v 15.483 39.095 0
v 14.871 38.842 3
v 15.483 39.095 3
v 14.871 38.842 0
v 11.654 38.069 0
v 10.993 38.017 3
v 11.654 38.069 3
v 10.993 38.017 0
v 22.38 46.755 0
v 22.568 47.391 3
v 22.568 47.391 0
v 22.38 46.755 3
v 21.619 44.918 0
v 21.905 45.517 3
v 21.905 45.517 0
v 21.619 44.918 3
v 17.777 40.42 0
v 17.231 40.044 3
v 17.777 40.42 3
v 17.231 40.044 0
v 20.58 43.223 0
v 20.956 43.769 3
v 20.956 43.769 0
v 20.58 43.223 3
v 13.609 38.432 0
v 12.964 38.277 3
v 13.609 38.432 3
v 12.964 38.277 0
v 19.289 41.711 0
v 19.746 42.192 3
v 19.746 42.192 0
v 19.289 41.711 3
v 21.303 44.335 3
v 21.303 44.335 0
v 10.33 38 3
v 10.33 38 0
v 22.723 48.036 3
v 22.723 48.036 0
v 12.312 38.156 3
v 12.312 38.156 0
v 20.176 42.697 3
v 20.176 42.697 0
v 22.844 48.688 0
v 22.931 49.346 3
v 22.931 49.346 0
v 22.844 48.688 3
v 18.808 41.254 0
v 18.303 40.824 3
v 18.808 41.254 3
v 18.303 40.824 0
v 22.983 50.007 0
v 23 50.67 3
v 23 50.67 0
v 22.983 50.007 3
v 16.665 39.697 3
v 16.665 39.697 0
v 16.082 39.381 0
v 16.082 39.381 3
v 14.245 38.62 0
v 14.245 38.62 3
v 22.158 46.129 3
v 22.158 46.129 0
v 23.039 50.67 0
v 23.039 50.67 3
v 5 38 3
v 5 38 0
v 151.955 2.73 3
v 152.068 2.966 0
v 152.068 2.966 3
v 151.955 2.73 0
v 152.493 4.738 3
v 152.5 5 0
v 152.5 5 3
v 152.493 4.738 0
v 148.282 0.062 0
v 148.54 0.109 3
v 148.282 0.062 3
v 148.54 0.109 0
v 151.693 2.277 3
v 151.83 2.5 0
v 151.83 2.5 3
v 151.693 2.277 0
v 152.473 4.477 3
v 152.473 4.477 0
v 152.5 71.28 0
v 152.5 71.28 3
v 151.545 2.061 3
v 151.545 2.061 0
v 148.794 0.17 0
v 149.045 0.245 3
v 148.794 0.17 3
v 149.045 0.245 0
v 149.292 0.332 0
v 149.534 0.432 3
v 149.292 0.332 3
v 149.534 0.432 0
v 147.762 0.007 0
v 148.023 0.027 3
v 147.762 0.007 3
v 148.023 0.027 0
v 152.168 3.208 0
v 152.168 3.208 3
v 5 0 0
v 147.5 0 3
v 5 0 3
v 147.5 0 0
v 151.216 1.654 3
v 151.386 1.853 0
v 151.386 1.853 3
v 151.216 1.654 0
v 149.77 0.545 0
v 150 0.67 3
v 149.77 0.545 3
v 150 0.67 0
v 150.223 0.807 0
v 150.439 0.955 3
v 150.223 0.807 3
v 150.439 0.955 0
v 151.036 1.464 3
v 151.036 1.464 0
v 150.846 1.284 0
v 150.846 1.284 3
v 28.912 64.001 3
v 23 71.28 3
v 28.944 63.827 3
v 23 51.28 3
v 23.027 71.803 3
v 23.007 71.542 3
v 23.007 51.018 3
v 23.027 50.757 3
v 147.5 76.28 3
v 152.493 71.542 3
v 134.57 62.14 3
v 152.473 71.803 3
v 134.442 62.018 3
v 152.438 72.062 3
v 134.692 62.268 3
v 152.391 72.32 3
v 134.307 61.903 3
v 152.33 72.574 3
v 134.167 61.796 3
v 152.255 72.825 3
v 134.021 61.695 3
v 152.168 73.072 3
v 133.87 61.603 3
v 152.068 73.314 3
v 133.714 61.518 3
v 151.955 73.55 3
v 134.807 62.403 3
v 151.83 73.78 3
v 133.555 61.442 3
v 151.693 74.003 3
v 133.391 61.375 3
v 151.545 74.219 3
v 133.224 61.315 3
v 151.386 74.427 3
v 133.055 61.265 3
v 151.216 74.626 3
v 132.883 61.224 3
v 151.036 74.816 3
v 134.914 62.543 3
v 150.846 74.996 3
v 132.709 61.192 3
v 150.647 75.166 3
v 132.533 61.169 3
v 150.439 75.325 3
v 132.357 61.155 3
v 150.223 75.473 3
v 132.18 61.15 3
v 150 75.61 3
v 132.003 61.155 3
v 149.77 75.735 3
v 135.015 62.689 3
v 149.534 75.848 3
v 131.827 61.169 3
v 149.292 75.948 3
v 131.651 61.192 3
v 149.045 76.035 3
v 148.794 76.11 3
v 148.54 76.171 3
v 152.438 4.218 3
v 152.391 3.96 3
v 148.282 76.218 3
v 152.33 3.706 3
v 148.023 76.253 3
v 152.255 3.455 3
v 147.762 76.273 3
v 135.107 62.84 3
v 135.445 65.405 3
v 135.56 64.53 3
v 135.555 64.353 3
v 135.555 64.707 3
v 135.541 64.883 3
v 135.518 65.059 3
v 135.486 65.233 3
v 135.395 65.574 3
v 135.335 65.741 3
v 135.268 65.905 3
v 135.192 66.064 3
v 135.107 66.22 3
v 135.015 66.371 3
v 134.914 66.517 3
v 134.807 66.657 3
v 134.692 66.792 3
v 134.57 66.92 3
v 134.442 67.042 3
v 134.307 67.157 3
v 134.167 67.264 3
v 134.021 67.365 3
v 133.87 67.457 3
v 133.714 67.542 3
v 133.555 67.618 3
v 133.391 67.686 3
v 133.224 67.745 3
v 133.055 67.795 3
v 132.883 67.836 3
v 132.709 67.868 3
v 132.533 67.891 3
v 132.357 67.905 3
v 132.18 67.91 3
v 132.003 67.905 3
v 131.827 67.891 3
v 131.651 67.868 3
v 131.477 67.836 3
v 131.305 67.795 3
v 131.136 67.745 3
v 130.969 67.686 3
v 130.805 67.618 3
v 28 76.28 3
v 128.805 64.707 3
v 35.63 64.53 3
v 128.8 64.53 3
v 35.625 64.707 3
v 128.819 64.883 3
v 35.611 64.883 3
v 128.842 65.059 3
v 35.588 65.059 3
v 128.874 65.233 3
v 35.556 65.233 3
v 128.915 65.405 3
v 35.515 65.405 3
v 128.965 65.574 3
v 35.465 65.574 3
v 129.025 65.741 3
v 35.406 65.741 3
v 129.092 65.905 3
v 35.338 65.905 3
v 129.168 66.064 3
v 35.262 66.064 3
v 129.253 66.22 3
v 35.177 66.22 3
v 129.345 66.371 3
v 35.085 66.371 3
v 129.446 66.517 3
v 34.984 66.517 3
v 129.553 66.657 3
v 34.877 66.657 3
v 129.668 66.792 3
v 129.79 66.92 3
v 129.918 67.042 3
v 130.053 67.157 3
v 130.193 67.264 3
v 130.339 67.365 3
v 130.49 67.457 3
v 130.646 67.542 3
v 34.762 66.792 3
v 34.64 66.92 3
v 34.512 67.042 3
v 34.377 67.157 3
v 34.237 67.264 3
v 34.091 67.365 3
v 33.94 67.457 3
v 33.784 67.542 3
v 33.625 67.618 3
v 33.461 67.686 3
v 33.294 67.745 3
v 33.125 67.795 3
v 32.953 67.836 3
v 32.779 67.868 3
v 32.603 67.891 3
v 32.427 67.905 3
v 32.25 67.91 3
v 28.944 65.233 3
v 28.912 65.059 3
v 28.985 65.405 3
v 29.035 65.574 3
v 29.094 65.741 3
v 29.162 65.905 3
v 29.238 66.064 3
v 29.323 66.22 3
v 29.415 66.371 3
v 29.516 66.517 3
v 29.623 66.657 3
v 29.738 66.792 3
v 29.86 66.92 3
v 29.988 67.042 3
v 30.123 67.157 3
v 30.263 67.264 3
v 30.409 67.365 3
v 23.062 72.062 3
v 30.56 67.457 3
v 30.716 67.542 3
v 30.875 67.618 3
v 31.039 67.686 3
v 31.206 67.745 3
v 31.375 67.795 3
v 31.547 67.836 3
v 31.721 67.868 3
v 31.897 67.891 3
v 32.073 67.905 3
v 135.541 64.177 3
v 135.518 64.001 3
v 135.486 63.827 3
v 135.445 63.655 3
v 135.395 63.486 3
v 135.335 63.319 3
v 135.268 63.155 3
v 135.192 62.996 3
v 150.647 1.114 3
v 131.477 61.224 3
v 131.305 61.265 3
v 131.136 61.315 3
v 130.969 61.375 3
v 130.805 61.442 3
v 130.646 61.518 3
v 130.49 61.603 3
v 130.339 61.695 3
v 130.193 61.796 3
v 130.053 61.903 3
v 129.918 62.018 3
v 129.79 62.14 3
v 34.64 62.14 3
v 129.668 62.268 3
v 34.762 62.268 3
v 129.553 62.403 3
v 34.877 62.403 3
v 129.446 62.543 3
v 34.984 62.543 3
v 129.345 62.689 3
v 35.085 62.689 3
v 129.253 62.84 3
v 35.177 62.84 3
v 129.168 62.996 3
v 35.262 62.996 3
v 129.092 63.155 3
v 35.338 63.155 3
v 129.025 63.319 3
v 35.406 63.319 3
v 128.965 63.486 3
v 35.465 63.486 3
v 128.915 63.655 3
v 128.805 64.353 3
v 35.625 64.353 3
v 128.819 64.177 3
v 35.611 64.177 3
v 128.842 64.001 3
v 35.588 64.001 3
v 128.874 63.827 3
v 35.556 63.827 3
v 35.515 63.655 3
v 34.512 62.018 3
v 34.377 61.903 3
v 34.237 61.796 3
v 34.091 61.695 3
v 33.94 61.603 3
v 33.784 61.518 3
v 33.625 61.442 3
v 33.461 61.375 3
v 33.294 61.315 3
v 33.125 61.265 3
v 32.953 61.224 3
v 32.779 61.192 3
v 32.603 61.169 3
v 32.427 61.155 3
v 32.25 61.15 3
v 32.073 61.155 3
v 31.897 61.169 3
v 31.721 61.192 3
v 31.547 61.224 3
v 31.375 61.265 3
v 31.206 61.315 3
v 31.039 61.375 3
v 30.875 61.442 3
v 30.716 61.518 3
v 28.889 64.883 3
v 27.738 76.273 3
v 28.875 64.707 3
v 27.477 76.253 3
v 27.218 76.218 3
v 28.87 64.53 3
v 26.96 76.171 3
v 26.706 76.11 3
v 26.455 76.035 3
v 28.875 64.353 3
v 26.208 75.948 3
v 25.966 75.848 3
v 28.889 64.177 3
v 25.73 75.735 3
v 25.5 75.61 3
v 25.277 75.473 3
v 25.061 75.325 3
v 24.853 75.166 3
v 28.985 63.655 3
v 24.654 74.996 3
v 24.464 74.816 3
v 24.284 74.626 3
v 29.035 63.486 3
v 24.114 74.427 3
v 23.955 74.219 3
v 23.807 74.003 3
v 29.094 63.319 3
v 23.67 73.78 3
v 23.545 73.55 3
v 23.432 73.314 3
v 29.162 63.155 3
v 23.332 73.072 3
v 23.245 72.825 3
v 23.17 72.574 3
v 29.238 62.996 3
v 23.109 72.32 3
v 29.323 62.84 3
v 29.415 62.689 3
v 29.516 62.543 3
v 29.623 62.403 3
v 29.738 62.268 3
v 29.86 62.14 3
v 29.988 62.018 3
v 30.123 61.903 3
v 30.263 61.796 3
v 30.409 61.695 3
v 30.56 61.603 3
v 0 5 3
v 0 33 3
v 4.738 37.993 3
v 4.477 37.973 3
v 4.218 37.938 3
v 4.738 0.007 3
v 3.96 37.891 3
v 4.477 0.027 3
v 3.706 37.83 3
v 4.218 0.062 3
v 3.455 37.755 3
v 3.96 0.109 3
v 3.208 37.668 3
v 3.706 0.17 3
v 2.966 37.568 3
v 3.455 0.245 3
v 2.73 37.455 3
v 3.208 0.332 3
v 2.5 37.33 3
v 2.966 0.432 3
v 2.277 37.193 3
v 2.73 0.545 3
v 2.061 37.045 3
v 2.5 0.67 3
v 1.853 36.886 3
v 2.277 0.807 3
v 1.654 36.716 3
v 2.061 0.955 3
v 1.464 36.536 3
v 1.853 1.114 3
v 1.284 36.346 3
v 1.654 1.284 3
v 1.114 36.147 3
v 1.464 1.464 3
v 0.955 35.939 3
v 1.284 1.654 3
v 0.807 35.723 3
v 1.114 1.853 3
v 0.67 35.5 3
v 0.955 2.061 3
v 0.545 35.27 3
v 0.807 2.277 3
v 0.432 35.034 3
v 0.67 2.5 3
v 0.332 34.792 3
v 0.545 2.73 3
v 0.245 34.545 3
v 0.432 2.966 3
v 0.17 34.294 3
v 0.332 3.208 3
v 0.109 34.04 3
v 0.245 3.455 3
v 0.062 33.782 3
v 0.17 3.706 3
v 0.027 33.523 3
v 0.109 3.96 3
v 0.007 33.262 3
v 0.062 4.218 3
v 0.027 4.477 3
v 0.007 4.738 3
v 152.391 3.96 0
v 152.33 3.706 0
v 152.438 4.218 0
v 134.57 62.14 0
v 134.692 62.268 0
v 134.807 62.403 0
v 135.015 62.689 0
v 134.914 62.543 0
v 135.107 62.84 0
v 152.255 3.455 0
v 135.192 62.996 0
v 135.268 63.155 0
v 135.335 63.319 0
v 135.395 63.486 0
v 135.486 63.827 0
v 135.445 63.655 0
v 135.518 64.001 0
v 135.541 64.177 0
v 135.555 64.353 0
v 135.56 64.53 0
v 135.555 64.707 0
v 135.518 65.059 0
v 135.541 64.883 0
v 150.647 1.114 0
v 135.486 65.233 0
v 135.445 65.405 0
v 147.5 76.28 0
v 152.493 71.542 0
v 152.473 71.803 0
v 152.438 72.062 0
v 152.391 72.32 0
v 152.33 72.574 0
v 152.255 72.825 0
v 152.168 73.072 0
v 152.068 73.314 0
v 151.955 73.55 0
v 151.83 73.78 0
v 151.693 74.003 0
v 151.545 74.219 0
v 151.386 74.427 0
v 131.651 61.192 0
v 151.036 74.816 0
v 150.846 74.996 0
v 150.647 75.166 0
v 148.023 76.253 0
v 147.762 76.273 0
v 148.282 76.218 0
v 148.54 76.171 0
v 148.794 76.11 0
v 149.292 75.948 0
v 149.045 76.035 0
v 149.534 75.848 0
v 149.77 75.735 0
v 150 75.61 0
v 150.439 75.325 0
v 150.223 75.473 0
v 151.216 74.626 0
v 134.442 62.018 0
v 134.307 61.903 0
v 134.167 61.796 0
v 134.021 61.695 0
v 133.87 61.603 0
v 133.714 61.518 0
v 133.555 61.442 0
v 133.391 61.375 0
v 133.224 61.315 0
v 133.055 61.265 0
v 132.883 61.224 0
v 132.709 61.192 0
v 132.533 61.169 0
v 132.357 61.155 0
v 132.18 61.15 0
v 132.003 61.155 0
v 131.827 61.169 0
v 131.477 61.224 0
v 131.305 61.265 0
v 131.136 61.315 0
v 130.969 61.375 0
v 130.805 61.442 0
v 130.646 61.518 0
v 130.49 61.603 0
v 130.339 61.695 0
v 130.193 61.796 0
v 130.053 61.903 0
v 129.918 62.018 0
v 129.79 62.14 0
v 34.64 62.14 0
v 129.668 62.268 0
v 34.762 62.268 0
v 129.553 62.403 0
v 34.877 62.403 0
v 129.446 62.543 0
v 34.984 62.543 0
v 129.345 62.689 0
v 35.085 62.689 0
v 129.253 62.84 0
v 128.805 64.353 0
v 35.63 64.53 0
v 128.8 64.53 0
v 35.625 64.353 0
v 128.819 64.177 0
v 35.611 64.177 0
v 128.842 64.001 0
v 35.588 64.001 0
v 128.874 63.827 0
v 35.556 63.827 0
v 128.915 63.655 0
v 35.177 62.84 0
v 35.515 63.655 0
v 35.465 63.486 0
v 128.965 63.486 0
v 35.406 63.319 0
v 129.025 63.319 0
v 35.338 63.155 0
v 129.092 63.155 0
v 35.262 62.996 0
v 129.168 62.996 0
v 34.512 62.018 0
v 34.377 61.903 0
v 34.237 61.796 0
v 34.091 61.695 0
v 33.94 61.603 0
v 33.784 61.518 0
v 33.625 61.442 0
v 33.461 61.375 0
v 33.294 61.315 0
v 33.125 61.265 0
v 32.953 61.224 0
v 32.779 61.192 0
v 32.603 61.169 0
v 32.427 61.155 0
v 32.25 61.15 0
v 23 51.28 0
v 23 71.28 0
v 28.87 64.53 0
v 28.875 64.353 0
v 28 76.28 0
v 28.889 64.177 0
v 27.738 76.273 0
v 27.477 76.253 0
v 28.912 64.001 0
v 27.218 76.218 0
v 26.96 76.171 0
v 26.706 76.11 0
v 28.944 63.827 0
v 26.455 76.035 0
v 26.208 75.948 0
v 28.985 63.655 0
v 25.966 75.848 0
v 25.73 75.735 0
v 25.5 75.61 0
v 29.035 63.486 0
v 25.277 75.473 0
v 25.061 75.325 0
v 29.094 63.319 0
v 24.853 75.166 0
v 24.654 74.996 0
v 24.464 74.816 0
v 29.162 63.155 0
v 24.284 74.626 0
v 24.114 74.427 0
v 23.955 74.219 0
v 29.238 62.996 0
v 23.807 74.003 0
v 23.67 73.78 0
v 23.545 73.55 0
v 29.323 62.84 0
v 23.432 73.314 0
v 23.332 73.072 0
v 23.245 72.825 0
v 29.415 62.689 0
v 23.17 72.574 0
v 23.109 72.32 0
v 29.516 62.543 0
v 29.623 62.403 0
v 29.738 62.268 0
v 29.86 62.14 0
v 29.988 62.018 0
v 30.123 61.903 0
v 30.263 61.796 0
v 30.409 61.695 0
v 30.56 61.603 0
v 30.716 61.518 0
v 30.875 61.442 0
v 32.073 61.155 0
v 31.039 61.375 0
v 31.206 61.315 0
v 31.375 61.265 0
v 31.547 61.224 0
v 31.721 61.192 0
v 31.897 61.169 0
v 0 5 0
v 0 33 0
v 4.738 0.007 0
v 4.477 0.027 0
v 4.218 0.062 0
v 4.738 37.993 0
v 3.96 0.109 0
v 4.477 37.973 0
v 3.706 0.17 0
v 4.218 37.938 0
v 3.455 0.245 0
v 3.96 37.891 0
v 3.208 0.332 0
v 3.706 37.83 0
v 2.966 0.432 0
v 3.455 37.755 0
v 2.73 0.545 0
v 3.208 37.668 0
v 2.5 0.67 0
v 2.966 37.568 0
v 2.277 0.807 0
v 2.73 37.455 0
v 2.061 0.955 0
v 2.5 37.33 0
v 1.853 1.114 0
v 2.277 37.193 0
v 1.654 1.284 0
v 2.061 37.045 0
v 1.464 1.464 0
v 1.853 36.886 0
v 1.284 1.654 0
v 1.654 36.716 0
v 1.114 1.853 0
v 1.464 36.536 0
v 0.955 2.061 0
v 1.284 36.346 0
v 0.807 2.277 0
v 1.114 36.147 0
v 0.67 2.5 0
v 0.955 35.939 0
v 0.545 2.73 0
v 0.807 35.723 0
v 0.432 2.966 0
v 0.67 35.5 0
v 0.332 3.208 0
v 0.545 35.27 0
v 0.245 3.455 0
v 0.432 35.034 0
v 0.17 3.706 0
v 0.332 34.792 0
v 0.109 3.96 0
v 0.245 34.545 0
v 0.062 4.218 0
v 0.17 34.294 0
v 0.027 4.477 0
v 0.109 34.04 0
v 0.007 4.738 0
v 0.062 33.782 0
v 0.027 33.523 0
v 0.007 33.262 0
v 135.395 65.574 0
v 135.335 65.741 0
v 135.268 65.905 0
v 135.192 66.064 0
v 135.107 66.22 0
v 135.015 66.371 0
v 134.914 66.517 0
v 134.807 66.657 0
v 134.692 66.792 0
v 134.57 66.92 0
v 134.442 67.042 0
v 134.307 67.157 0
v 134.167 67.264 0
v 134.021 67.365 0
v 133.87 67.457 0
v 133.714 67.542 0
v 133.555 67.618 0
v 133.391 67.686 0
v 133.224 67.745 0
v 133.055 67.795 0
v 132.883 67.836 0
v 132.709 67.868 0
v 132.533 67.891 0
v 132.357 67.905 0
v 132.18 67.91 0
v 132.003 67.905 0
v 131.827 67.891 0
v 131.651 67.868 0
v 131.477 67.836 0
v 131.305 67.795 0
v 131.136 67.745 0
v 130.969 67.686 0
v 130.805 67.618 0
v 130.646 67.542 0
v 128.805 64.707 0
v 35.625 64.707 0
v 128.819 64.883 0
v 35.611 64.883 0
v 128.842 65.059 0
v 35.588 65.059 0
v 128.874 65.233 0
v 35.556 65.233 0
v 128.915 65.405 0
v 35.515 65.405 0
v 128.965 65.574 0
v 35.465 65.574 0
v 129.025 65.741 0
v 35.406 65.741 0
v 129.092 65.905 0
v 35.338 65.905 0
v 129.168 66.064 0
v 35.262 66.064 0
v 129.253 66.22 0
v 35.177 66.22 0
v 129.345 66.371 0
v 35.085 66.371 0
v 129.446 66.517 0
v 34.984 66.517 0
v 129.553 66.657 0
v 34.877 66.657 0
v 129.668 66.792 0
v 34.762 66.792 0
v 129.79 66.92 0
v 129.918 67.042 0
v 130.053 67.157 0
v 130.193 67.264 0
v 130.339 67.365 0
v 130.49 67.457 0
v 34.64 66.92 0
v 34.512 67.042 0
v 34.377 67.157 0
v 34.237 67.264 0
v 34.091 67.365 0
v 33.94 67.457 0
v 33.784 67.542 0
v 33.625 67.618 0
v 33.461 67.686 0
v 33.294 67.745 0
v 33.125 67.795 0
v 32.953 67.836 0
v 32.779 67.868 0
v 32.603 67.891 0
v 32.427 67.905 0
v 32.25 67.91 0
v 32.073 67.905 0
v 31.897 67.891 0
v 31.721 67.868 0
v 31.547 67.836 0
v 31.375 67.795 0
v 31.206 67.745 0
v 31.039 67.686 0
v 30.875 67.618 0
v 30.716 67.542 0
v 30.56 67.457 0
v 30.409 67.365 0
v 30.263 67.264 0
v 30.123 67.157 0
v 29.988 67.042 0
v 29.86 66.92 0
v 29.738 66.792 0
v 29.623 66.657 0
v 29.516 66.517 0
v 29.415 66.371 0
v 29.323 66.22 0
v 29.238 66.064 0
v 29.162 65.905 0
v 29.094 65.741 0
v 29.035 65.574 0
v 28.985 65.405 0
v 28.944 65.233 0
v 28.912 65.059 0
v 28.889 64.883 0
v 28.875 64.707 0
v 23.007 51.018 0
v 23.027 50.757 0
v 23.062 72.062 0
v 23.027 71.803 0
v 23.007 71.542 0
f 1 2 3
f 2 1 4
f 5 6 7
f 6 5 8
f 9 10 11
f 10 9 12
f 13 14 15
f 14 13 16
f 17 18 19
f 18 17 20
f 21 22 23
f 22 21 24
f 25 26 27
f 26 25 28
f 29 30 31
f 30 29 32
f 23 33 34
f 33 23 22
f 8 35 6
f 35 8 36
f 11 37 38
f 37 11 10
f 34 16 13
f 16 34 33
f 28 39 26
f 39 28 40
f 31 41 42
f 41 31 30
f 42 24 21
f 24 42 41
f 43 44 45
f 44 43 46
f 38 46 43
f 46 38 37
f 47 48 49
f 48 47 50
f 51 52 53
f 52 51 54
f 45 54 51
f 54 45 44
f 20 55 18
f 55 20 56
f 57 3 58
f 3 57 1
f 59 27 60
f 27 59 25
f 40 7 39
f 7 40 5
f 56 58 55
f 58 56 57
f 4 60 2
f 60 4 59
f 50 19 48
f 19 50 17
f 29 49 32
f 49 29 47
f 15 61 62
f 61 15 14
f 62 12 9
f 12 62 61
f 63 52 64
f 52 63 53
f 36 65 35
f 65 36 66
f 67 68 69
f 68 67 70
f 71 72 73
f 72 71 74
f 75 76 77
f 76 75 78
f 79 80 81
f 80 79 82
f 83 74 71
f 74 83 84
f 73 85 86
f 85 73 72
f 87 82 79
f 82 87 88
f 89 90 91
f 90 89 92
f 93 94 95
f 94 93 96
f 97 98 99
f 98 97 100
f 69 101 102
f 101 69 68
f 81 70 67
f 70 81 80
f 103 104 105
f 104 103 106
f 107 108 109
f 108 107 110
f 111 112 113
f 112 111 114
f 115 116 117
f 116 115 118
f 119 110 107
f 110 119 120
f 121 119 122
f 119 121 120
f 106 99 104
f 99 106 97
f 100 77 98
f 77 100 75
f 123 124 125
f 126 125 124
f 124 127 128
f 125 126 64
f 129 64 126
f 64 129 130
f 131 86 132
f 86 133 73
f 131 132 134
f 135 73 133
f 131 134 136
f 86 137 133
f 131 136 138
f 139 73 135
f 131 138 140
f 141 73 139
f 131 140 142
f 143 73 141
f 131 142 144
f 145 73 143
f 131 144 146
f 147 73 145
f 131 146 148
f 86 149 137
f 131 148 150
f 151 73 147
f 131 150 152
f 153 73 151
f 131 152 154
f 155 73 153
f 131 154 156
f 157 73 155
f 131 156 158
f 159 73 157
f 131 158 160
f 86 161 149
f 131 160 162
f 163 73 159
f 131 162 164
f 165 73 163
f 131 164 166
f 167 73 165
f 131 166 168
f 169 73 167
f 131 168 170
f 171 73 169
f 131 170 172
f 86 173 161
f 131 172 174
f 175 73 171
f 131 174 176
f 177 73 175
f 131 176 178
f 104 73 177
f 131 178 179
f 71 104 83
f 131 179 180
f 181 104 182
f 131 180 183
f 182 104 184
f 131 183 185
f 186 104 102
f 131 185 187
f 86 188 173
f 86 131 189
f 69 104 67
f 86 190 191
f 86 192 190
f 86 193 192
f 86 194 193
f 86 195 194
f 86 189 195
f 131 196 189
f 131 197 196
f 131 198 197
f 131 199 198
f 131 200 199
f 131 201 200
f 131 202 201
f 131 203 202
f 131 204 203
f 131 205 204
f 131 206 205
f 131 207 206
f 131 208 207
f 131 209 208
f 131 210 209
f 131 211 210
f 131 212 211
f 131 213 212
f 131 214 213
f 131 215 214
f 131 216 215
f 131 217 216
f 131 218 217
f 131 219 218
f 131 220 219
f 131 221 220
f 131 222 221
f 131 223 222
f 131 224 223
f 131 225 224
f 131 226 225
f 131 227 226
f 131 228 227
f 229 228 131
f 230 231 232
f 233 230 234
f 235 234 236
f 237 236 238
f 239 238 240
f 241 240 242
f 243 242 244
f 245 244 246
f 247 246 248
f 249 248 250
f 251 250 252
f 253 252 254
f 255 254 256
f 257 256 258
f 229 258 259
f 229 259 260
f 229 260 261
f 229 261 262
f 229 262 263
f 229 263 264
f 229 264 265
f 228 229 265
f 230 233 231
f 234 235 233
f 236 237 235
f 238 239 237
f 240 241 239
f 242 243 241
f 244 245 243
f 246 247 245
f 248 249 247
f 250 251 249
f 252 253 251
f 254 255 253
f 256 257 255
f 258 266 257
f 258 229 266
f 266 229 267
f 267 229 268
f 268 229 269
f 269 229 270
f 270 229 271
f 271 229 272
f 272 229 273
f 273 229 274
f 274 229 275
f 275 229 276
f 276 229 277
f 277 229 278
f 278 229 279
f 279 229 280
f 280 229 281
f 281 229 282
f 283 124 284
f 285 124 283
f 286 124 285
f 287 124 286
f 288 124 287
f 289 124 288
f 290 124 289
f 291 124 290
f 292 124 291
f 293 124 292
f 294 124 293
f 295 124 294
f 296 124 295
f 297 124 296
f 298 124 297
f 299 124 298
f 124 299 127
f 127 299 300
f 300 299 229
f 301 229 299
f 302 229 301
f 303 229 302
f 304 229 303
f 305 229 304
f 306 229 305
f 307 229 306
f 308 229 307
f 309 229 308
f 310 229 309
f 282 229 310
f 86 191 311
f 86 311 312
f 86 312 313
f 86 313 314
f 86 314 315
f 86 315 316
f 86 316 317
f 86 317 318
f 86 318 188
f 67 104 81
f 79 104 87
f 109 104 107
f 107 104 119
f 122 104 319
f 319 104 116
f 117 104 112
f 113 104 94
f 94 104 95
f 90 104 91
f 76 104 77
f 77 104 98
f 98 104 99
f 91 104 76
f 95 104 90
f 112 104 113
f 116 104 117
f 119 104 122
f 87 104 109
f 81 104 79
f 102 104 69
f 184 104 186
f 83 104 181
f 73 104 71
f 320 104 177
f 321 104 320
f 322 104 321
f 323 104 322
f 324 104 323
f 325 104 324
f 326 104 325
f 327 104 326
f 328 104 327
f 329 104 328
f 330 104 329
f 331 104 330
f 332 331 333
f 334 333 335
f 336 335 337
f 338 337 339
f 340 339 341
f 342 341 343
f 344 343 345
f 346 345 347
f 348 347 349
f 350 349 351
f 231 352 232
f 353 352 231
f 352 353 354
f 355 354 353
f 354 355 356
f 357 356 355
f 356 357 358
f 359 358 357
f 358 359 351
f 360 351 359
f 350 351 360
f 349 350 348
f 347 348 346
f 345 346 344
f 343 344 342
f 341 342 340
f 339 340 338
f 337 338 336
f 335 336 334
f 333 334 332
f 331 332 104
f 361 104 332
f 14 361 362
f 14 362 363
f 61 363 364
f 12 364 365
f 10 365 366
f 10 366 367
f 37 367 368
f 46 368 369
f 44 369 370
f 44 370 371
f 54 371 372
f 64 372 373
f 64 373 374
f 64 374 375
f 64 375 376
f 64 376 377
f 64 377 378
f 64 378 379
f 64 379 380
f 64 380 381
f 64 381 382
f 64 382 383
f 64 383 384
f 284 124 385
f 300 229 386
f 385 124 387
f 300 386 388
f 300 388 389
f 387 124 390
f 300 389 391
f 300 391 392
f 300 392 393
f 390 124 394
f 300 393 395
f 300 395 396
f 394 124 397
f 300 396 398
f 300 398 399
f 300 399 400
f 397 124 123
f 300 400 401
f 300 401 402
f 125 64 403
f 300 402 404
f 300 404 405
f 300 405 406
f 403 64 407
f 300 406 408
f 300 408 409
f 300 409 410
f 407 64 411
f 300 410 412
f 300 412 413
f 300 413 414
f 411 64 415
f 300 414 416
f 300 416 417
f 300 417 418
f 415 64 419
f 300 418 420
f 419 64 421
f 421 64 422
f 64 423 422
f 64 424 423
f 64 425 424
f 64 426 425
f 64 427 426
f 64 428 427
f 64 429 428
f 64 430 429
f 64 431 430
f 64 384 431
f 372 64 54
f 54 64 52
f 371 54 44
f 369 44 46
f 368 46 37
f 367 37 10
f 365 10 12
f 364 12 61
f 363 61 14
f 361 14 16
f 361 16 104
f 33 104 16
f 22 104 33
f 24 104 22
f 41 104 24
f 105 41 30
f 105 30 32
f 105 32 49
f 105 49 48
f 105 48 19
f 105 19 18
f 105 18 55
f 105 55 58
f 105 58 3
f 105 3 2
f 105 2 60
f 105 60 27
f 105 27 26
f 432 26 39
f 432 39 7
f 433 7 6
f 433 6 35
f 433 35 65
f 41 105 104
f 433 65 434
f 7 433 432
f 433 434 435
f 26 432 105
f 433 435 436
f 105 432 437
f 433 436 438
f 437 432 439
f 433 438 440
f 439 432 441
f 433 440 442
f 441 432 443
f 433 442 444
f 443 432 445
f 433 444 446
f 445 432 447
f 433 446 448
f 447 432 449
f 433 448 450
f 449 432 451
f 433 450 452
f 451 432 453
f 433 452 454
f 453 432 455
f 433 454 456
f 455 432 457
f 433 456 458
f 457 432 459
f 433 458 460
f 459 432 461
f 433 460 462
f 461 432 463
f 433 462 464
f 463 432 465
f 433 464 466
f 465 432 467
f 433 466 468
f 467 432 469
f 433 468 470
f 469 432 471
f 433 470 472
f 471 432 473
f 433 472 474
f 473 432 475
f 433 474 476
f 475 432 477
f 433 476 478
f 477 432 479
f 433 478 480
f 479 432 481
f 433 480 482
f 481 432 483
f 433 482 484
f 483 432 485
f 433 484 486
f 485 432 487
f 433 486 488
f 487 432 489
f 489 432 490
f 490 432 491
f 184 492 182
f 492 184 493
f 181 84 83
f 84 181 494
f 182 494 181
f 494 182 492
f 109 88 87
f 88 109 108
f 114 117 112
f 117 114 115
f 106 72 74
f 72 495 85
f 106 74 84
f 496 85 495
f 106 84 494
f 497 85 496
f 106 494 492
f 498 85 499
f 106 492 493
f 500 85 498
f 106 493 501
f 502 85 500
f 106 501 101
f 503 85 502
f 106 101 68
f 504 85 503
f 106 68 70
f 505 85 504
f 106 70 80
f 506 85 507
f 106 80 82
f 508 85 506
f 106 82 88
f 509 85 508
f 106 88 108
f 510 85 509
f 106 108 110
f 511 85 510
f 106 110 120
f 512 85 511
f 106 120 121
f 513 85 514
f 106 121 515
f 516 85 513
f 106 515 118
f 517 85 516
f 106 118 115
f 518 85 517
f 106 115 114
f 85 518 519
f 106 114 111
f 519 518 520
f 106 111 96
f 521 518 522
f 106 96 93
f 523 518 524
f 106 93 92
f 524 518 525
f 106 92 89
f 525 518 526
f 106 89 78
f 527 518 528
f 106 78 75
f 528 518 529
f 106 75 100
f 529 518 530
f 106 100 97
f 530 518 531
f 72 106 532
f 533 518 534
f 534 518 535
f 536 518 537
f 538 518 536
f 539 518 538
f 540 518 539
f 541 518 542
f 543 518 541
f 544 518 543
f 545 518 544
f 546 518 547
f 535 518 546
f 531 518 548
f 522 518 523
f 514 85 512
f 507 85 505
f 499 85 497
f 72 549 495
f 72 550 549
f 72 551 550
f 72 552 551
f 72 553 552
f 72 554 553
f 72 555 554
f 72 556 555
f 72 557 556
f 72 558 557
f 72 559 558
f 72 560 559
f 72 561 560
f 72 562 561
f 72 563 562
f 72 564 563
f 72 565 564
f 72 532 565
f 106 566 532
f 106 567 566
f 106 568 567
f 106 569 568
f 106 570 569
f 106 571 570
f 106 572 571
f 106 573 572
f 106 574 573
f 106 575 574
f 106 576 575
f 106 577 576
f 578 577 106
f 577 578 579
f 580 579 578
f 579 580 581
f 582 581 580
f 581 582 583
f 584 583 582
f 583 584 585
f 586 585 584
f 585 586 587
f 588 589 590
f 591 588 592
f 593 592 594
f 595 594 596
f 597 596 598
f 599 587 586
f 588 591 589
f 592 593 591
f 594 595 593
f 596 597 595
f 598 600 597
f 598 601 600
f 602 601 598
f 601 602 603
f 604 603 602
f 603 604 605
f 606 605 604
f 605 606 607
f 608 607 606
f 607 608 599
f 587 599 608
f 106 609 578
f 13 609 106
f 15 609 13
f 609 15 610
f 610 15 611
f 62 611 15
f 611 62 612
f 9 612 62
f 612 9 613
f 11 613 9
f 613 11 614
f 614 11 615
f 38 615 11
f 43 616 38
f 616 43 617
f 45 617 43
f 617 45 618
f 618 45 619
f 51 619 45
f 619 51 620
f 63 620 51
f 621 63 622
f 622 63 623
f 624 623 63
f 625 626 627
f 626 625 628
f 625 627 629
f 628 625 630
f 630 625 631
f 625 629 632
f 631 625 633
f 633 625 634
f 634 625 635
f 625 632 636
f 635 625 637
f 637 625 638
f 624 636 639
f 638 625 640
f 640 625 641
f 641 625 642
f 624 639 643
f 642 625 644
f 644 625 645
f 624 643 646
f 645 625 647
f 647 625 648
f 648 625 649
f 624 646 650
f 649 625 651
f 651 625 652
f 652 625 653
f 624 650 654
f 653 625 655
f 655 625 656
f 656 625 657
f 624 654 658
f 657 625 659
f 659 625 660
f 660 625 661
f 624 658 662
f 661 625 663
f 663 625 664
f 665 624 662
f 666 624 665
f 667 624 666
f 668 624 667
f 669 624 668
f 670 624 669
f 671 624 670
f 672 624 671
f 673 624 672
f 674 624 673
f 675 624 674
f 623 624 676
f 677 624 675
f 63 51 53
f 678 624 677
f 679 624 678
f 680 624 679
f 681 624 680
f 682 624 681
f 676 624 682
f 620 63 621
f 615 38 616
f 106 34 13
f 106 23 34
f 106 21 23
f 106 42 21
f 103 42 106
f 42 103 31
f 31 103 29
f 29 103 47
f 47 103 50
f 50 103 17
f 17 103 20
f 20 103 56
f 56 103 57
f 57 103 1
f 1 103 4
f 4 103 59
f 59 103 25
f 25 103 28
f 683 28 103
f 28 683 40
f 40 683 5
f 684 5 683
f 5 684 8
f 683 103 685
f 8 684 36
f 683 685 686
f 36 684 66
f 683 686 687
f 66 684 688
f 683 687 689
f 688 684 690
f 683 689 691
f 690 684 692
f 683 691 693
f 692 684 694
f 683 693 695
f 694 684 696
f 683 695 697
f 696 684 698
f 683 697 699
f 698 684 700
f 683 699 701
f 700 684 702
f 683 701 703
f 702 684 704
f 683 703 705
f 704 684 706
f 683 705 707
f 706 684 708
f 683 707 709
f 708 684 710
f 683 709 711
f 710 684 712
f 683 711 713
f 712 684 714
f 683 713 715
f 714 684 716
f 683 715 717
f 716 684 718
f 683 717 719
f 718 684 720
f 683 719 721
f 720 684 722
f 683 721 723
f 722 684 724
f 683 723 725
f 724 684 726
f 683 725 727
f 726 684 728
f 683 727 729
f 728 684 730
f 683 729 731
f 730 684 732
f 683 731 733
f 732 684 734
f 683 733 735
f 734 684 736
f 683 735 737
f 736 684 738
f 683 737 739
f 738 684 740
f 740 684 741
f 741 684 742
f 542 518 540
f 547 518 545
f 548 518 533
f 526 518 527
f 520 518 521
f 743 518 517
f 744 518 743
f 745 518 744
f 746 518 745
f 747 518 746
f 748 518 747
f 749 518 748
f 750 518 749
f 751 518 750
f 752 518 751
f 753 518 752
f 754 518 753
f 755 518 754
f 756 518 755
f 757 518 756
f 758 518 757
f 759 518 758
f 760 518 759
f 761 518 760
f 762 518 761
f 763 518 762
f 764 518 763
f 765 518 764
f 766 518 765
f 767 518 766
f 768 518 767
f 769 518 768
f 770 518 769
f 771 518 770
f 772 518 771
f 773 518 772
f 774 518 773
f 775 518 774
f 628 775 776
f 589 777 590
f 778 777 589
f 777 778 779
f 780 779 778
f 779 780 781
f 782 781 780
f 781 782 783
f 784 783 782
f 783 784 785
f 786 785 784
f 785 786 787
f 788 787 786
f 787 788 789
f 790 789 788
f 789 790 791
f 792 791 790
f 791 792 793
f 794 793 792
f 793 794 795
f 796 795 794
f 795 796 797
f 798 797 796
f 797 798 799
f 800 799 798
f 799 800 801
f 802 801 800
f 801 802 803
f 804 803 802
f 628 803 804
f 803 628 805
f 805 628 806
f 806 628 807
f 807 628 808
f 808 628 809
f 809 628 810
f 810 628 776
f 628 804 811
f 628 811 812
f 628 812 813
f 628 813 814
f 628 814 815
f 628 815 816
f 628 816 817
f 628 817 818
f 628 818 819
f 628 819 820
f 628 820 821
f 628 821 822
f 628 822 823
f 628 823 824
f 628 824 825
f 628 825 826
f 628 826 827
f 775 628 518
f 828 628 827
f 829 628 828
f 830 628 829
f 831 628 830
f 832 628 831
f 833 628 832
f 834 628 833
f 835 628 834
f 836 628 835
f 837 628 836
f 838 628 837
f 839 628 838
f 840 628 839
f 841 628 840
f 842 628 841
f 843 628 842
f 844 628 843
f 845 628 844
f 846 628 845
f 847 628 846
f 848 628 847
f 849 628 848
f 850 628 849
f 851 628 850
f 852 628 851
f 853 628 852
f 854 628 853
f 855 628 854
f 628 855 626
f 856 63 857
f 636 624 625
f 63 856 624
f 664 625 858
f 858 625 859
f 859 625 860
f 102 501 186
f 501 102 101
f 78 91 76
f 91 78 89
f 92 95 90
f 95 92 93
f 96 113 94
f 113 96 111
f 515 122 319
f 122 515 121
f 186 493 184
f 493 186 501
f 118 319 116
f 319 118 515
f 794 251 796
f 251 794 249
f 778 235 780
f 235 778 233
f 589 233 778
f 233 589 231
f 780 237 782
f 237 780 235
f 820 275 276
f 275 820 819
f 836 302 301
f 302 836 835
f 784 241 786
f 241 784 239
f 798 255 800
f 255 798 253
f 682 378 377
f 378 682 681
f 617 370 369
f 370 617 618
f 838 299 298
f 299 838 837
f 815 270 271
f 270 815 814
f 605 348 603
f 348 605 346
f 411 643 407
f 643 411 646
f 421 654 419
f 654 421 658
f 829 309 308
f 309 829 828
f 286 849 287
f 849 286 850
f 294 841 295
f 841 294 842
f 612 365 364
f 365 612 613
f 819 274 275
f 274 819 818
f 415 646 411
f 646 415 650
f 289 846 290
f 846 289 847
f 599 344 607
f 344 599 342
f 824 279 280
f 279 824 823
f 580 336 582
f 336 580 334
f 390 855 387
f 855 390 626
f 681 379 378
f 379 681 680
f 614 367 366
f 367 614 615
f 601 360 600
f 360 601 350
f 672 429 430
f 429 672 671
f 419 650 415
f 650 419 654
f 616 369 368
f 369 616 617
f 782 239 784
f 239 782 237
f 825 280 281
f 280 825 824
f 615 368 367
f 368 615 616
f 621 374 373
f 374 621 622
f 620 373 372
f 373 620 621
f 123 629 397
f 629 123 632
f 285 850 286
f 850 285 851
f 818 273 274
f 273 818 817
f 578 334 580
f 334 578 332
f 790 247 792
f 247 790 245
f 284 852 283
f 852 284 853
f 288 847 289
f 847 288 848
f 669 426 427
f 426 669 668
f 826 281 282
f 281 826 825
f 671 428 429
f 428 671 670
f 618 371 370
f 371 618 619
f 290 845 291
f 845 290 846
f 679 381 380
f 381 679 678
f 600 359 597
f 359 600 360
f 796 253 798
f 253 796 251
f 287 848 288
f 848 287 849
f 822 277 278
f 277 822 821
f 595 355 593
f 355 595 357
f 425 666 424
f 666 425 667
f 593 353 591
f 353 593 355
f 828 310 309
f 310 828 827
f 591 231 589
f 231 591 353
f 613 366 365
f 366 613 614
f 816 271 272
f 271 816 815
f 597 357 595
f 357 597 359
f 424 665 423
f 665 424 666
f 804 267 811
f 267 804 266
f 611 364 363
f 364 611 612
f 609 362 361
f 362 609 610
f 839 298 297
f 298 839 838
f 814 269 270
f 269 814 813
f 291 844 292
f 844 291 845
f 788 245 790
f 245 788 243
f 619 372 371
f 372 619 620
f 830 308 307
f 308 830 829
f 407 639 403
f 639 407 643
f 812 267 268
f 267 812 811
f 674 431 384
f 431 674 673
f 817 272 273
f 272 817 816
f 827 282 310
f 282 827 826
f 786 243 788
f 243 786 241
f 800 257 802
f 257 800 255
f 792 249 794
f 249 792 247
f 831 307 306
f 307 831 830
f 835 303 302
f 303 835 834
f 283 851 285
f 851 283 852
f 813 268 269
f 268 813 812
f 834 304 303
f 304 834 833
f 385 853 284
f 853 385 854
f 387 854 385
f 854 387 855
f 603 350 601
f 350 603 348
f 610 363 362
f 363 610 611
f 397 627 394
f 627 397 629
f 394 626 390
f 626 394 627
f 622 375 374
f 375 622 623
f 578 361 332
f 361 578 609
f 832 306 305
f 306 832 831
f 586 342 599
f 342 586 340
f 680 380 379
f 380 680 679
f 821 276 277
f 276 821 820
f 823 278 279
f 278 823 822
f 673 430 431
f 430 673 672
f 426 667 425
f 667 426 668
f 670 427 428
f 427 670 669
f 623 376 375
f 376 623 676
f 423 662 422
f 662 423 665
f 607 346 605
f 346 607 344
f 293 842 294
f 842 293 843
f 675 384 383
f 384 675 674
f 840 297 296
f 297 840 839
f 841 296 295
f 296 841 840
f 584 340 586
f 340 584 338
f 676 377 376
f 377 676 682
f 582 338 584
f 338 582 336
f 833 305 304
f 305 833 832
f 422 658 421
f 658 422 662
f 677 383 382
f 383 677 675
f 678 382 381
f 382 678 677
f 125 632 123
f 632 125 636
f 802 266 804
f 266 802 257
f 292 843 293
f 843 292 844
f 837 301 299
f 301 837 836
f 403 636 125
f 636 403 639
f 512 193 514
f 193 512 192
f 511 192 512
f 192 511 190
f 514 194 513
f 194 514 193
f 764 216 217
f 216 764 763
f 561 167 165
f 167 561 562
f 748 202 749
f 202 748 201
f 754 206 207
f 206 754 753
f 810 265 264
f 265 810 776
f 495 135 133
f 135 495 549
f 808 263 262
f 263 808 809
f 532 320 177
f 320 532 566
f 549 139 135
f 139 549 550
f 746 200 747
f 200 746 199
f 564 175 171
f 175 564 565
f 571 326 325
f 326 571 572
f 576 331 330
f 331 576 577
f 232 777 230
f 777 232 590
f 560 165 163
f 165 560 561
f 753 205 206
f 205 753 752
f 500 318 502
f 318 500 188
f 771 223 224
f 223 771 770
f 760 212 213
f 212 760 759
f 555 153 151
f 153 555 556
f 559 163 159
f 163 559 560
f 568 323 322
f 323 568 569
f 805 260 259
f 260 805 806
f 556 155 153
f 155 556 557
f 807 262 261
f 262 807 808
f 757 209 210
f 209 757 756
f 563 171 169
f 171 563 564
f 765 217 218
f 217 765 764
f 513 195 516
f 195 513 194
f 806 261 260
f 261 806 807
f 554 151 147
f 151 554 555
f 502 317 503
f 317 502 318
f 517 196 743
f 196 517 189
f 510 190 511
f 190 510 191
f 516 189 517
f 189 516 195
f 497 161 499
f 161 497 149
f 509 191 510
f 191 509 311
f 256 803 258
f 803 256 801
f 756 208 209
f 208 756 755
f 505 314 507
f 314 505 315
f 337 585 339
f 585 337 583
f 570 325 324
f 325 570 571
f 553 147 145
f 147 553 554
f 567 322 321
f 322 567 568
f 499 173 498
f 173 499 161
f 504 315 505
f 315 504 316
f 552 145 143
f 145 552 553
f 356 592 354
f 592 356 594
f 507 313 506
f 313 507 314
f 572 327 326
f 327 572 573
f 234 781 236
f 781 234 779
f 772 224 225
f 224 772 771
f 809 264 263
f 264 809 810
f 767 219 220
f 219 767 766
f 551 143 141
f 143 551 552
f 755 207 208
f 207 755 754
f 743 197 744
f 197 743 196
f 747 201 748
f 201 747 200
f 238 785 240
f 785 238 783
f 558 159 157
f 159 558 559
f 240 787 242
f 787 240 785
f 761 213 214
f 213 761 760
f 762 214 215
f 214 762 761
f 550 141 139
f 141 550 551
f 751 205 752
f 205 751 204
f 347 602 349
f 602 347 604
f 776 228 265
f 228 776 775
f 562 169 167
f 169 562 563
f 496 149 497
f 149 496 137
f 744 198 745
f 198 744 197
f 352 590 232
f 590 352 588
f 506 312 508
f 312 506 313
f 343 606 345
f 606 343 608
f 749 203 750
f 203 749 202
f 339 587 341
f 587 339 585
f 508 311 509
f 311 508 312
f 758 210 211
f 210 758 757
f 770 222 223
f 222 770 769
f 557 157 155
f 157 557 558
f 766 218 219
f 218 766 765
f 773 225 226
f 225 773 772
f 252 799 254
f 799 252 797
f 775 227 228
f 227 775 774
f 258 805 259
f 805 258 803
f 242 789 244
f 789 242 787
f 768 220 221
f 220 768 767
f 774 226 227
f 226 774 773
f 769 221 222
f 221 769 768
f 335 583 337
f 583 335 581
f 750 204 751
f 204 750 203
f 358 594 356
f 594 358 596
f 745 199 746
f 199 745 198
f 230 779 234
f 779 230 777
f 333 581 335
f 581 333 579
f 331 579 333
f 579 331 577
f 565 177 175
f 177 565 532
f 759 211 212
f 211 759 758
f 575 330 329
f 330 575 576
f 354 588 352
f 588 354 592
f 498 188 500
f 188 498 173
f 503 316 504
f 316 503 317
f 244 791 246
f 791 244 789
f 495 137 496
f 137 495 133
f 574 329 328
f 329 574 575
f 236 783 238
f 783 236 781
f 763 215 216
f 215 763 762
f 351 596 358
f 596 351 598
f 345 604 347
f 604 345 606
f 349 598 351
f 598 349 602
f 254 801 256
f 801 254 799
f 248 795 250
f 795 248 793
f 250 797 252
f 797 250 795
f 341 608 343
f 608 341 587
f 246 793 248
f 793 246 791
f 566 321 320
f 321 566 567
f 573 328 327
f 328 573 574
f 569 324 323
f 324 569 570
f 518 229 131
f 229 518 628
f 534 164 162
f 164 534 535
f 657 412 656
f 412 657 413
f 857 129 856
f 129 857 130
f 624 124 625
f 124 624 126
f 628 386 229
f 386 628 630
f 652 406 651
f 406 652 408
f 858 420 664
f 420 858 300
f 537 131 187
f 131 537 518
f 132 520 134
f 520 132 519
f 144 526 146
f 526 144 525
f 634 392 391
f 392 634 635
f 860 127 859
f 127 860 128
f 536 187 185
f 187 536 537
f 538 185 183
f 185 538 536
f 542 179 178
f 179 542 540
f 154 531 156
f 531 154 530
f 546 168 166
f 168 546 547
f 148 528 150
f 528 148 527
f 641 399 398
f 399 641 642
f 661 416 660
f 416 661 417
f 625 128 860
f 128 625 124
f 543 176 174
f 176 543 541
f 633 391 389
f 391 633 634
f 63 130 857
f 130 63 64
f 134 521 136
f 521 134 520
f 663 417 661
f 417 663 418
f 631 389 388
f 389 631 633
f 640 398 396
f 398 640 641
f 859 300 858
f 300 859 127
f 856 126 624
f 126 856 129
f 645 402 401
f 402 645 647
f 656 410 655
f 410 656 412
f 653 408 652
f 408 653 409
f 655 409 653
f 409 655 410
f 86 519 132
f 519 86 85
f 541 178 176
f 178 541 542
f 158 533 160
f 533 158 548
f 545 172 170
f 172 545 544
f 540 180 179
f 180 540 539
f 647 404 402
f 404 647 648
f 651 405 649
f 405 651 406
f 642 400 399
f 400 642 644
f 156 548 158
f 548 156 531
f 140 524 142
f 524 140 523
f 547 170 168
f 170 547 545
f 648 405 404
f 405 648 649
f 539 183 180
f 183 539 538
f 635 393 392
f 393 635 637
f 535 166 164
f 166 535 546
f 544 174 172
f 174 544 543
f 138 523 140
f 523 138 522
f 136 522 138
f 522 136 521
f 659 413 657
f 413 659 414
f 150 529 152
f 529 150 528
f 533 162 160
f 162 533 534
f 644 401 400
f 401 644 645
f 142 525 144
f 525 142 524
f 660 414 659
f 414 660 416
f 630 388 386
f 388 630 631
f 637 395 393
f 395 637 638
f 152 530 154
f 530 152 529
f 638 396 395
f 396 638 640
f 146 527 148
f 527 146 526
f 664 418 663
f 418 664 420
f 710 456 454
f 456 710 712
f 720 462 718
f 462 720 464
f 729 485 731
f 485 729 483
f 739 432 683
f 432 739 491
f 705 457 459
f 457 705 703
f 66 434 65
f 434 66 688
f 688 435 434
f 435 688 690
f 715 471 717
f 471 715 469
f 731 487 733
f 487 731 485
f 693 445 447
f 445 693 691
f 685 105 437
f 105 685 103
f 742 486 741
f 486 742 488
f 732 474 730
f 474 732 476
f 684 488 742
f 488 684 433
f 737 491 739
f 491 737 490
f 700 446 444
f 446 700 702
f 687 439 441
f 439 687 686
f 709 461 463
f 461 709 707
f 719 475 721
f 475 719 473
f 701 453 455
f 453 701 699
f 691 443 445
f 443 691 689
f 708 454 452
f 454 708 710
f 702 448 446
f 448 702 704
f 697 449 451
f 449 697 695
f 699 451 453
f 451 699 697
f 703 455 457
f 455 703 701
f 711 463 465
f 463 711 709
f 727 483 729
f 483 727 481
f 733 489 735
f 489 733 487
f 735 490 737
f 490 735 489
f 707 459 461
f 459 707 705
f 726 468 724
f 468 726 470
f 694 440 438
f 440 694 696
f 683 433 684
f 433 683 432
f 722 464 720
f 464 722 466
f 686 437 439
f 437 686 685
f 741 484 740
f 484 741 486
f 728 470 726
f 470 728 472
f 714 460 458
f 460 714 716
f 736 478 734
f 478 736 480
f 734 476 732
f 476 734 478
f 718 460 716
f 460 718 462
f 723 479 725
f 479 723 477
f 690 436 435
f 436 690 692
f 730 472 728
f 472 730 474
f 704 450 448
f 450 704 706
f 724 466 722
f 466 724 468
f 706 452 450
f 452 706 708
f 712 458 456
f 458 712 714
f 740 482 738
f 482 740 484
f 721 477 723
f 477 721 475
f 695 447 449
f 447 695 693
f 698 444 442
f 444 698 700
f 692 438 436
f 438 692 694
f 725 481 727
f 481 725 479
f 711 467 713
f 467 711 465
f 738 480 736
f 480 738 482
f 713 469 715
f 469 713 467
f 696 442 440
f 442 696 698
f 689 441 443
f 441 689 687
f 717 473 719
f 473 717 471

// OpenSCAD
// horn_primercop_plate.scad - 2022 Gregory A Sanders
// Template for the steel plate everything else is mounted on.
// corners filleted with 5mm radius
// 3mm steel thickness (c. 1/8")
// 76.28 total width
// 152.5 total height
// 33 peninsula width
// 23 peninsula height
// 12.67 large radius
// 10 corner radius
// 99.93mm (3-15/16") mount hole vertical spacing
// 11.75 mount holes from left edge and bottom
// 17/64" (6.76mm) holes (just larger than 1/4")

$fn=120;

module mountholes(){
    union(){
        cylinder(10,r=3.38,center=true);
        translate([99.93,0,0])
        cylinder(10,r=3.38,center=true);
    }
}

module base(){
    minkowski(){
        translate([10,0,0])
        cube([132.5,46.3,2]);
        cylinder(1,r=5,center=true);
    }
}

module lowerright(){
    minkowski() {
        cube([13,28,2]);
        cylinder(1,r=5,center=true);
    }
}
module left(){

    minkowski() {
        translate([23,46.28,0])
        cube([119.5,20,2]);
        cylinder(1,r=5,center=true);
    }

    
}

module final(){
    difference(){
        base();
        union(){
                translate([5.33,45.67,0])
                cylinder(10,r=12.67,center=true);
                translate([-17,45.67,-1])
                cube([40,40,10]);
                translate([-24.67,33,-1])
                cube([30,20,10]);
                }
            }
    lowerright();
    difference(){
        left();
        translate([15.5+(11.75),-5+(76.28-11.75),0])
        mountholes();
    }
}

translate([5,5,.5])  // to offset minkowski add.
final();

// translate([0,60,0])  // use these to check overall measurements
// color("red")
// cube([152.5,20,3]);
// translate([0,60,0])
// color("red")
// cube([23,20,3]);
